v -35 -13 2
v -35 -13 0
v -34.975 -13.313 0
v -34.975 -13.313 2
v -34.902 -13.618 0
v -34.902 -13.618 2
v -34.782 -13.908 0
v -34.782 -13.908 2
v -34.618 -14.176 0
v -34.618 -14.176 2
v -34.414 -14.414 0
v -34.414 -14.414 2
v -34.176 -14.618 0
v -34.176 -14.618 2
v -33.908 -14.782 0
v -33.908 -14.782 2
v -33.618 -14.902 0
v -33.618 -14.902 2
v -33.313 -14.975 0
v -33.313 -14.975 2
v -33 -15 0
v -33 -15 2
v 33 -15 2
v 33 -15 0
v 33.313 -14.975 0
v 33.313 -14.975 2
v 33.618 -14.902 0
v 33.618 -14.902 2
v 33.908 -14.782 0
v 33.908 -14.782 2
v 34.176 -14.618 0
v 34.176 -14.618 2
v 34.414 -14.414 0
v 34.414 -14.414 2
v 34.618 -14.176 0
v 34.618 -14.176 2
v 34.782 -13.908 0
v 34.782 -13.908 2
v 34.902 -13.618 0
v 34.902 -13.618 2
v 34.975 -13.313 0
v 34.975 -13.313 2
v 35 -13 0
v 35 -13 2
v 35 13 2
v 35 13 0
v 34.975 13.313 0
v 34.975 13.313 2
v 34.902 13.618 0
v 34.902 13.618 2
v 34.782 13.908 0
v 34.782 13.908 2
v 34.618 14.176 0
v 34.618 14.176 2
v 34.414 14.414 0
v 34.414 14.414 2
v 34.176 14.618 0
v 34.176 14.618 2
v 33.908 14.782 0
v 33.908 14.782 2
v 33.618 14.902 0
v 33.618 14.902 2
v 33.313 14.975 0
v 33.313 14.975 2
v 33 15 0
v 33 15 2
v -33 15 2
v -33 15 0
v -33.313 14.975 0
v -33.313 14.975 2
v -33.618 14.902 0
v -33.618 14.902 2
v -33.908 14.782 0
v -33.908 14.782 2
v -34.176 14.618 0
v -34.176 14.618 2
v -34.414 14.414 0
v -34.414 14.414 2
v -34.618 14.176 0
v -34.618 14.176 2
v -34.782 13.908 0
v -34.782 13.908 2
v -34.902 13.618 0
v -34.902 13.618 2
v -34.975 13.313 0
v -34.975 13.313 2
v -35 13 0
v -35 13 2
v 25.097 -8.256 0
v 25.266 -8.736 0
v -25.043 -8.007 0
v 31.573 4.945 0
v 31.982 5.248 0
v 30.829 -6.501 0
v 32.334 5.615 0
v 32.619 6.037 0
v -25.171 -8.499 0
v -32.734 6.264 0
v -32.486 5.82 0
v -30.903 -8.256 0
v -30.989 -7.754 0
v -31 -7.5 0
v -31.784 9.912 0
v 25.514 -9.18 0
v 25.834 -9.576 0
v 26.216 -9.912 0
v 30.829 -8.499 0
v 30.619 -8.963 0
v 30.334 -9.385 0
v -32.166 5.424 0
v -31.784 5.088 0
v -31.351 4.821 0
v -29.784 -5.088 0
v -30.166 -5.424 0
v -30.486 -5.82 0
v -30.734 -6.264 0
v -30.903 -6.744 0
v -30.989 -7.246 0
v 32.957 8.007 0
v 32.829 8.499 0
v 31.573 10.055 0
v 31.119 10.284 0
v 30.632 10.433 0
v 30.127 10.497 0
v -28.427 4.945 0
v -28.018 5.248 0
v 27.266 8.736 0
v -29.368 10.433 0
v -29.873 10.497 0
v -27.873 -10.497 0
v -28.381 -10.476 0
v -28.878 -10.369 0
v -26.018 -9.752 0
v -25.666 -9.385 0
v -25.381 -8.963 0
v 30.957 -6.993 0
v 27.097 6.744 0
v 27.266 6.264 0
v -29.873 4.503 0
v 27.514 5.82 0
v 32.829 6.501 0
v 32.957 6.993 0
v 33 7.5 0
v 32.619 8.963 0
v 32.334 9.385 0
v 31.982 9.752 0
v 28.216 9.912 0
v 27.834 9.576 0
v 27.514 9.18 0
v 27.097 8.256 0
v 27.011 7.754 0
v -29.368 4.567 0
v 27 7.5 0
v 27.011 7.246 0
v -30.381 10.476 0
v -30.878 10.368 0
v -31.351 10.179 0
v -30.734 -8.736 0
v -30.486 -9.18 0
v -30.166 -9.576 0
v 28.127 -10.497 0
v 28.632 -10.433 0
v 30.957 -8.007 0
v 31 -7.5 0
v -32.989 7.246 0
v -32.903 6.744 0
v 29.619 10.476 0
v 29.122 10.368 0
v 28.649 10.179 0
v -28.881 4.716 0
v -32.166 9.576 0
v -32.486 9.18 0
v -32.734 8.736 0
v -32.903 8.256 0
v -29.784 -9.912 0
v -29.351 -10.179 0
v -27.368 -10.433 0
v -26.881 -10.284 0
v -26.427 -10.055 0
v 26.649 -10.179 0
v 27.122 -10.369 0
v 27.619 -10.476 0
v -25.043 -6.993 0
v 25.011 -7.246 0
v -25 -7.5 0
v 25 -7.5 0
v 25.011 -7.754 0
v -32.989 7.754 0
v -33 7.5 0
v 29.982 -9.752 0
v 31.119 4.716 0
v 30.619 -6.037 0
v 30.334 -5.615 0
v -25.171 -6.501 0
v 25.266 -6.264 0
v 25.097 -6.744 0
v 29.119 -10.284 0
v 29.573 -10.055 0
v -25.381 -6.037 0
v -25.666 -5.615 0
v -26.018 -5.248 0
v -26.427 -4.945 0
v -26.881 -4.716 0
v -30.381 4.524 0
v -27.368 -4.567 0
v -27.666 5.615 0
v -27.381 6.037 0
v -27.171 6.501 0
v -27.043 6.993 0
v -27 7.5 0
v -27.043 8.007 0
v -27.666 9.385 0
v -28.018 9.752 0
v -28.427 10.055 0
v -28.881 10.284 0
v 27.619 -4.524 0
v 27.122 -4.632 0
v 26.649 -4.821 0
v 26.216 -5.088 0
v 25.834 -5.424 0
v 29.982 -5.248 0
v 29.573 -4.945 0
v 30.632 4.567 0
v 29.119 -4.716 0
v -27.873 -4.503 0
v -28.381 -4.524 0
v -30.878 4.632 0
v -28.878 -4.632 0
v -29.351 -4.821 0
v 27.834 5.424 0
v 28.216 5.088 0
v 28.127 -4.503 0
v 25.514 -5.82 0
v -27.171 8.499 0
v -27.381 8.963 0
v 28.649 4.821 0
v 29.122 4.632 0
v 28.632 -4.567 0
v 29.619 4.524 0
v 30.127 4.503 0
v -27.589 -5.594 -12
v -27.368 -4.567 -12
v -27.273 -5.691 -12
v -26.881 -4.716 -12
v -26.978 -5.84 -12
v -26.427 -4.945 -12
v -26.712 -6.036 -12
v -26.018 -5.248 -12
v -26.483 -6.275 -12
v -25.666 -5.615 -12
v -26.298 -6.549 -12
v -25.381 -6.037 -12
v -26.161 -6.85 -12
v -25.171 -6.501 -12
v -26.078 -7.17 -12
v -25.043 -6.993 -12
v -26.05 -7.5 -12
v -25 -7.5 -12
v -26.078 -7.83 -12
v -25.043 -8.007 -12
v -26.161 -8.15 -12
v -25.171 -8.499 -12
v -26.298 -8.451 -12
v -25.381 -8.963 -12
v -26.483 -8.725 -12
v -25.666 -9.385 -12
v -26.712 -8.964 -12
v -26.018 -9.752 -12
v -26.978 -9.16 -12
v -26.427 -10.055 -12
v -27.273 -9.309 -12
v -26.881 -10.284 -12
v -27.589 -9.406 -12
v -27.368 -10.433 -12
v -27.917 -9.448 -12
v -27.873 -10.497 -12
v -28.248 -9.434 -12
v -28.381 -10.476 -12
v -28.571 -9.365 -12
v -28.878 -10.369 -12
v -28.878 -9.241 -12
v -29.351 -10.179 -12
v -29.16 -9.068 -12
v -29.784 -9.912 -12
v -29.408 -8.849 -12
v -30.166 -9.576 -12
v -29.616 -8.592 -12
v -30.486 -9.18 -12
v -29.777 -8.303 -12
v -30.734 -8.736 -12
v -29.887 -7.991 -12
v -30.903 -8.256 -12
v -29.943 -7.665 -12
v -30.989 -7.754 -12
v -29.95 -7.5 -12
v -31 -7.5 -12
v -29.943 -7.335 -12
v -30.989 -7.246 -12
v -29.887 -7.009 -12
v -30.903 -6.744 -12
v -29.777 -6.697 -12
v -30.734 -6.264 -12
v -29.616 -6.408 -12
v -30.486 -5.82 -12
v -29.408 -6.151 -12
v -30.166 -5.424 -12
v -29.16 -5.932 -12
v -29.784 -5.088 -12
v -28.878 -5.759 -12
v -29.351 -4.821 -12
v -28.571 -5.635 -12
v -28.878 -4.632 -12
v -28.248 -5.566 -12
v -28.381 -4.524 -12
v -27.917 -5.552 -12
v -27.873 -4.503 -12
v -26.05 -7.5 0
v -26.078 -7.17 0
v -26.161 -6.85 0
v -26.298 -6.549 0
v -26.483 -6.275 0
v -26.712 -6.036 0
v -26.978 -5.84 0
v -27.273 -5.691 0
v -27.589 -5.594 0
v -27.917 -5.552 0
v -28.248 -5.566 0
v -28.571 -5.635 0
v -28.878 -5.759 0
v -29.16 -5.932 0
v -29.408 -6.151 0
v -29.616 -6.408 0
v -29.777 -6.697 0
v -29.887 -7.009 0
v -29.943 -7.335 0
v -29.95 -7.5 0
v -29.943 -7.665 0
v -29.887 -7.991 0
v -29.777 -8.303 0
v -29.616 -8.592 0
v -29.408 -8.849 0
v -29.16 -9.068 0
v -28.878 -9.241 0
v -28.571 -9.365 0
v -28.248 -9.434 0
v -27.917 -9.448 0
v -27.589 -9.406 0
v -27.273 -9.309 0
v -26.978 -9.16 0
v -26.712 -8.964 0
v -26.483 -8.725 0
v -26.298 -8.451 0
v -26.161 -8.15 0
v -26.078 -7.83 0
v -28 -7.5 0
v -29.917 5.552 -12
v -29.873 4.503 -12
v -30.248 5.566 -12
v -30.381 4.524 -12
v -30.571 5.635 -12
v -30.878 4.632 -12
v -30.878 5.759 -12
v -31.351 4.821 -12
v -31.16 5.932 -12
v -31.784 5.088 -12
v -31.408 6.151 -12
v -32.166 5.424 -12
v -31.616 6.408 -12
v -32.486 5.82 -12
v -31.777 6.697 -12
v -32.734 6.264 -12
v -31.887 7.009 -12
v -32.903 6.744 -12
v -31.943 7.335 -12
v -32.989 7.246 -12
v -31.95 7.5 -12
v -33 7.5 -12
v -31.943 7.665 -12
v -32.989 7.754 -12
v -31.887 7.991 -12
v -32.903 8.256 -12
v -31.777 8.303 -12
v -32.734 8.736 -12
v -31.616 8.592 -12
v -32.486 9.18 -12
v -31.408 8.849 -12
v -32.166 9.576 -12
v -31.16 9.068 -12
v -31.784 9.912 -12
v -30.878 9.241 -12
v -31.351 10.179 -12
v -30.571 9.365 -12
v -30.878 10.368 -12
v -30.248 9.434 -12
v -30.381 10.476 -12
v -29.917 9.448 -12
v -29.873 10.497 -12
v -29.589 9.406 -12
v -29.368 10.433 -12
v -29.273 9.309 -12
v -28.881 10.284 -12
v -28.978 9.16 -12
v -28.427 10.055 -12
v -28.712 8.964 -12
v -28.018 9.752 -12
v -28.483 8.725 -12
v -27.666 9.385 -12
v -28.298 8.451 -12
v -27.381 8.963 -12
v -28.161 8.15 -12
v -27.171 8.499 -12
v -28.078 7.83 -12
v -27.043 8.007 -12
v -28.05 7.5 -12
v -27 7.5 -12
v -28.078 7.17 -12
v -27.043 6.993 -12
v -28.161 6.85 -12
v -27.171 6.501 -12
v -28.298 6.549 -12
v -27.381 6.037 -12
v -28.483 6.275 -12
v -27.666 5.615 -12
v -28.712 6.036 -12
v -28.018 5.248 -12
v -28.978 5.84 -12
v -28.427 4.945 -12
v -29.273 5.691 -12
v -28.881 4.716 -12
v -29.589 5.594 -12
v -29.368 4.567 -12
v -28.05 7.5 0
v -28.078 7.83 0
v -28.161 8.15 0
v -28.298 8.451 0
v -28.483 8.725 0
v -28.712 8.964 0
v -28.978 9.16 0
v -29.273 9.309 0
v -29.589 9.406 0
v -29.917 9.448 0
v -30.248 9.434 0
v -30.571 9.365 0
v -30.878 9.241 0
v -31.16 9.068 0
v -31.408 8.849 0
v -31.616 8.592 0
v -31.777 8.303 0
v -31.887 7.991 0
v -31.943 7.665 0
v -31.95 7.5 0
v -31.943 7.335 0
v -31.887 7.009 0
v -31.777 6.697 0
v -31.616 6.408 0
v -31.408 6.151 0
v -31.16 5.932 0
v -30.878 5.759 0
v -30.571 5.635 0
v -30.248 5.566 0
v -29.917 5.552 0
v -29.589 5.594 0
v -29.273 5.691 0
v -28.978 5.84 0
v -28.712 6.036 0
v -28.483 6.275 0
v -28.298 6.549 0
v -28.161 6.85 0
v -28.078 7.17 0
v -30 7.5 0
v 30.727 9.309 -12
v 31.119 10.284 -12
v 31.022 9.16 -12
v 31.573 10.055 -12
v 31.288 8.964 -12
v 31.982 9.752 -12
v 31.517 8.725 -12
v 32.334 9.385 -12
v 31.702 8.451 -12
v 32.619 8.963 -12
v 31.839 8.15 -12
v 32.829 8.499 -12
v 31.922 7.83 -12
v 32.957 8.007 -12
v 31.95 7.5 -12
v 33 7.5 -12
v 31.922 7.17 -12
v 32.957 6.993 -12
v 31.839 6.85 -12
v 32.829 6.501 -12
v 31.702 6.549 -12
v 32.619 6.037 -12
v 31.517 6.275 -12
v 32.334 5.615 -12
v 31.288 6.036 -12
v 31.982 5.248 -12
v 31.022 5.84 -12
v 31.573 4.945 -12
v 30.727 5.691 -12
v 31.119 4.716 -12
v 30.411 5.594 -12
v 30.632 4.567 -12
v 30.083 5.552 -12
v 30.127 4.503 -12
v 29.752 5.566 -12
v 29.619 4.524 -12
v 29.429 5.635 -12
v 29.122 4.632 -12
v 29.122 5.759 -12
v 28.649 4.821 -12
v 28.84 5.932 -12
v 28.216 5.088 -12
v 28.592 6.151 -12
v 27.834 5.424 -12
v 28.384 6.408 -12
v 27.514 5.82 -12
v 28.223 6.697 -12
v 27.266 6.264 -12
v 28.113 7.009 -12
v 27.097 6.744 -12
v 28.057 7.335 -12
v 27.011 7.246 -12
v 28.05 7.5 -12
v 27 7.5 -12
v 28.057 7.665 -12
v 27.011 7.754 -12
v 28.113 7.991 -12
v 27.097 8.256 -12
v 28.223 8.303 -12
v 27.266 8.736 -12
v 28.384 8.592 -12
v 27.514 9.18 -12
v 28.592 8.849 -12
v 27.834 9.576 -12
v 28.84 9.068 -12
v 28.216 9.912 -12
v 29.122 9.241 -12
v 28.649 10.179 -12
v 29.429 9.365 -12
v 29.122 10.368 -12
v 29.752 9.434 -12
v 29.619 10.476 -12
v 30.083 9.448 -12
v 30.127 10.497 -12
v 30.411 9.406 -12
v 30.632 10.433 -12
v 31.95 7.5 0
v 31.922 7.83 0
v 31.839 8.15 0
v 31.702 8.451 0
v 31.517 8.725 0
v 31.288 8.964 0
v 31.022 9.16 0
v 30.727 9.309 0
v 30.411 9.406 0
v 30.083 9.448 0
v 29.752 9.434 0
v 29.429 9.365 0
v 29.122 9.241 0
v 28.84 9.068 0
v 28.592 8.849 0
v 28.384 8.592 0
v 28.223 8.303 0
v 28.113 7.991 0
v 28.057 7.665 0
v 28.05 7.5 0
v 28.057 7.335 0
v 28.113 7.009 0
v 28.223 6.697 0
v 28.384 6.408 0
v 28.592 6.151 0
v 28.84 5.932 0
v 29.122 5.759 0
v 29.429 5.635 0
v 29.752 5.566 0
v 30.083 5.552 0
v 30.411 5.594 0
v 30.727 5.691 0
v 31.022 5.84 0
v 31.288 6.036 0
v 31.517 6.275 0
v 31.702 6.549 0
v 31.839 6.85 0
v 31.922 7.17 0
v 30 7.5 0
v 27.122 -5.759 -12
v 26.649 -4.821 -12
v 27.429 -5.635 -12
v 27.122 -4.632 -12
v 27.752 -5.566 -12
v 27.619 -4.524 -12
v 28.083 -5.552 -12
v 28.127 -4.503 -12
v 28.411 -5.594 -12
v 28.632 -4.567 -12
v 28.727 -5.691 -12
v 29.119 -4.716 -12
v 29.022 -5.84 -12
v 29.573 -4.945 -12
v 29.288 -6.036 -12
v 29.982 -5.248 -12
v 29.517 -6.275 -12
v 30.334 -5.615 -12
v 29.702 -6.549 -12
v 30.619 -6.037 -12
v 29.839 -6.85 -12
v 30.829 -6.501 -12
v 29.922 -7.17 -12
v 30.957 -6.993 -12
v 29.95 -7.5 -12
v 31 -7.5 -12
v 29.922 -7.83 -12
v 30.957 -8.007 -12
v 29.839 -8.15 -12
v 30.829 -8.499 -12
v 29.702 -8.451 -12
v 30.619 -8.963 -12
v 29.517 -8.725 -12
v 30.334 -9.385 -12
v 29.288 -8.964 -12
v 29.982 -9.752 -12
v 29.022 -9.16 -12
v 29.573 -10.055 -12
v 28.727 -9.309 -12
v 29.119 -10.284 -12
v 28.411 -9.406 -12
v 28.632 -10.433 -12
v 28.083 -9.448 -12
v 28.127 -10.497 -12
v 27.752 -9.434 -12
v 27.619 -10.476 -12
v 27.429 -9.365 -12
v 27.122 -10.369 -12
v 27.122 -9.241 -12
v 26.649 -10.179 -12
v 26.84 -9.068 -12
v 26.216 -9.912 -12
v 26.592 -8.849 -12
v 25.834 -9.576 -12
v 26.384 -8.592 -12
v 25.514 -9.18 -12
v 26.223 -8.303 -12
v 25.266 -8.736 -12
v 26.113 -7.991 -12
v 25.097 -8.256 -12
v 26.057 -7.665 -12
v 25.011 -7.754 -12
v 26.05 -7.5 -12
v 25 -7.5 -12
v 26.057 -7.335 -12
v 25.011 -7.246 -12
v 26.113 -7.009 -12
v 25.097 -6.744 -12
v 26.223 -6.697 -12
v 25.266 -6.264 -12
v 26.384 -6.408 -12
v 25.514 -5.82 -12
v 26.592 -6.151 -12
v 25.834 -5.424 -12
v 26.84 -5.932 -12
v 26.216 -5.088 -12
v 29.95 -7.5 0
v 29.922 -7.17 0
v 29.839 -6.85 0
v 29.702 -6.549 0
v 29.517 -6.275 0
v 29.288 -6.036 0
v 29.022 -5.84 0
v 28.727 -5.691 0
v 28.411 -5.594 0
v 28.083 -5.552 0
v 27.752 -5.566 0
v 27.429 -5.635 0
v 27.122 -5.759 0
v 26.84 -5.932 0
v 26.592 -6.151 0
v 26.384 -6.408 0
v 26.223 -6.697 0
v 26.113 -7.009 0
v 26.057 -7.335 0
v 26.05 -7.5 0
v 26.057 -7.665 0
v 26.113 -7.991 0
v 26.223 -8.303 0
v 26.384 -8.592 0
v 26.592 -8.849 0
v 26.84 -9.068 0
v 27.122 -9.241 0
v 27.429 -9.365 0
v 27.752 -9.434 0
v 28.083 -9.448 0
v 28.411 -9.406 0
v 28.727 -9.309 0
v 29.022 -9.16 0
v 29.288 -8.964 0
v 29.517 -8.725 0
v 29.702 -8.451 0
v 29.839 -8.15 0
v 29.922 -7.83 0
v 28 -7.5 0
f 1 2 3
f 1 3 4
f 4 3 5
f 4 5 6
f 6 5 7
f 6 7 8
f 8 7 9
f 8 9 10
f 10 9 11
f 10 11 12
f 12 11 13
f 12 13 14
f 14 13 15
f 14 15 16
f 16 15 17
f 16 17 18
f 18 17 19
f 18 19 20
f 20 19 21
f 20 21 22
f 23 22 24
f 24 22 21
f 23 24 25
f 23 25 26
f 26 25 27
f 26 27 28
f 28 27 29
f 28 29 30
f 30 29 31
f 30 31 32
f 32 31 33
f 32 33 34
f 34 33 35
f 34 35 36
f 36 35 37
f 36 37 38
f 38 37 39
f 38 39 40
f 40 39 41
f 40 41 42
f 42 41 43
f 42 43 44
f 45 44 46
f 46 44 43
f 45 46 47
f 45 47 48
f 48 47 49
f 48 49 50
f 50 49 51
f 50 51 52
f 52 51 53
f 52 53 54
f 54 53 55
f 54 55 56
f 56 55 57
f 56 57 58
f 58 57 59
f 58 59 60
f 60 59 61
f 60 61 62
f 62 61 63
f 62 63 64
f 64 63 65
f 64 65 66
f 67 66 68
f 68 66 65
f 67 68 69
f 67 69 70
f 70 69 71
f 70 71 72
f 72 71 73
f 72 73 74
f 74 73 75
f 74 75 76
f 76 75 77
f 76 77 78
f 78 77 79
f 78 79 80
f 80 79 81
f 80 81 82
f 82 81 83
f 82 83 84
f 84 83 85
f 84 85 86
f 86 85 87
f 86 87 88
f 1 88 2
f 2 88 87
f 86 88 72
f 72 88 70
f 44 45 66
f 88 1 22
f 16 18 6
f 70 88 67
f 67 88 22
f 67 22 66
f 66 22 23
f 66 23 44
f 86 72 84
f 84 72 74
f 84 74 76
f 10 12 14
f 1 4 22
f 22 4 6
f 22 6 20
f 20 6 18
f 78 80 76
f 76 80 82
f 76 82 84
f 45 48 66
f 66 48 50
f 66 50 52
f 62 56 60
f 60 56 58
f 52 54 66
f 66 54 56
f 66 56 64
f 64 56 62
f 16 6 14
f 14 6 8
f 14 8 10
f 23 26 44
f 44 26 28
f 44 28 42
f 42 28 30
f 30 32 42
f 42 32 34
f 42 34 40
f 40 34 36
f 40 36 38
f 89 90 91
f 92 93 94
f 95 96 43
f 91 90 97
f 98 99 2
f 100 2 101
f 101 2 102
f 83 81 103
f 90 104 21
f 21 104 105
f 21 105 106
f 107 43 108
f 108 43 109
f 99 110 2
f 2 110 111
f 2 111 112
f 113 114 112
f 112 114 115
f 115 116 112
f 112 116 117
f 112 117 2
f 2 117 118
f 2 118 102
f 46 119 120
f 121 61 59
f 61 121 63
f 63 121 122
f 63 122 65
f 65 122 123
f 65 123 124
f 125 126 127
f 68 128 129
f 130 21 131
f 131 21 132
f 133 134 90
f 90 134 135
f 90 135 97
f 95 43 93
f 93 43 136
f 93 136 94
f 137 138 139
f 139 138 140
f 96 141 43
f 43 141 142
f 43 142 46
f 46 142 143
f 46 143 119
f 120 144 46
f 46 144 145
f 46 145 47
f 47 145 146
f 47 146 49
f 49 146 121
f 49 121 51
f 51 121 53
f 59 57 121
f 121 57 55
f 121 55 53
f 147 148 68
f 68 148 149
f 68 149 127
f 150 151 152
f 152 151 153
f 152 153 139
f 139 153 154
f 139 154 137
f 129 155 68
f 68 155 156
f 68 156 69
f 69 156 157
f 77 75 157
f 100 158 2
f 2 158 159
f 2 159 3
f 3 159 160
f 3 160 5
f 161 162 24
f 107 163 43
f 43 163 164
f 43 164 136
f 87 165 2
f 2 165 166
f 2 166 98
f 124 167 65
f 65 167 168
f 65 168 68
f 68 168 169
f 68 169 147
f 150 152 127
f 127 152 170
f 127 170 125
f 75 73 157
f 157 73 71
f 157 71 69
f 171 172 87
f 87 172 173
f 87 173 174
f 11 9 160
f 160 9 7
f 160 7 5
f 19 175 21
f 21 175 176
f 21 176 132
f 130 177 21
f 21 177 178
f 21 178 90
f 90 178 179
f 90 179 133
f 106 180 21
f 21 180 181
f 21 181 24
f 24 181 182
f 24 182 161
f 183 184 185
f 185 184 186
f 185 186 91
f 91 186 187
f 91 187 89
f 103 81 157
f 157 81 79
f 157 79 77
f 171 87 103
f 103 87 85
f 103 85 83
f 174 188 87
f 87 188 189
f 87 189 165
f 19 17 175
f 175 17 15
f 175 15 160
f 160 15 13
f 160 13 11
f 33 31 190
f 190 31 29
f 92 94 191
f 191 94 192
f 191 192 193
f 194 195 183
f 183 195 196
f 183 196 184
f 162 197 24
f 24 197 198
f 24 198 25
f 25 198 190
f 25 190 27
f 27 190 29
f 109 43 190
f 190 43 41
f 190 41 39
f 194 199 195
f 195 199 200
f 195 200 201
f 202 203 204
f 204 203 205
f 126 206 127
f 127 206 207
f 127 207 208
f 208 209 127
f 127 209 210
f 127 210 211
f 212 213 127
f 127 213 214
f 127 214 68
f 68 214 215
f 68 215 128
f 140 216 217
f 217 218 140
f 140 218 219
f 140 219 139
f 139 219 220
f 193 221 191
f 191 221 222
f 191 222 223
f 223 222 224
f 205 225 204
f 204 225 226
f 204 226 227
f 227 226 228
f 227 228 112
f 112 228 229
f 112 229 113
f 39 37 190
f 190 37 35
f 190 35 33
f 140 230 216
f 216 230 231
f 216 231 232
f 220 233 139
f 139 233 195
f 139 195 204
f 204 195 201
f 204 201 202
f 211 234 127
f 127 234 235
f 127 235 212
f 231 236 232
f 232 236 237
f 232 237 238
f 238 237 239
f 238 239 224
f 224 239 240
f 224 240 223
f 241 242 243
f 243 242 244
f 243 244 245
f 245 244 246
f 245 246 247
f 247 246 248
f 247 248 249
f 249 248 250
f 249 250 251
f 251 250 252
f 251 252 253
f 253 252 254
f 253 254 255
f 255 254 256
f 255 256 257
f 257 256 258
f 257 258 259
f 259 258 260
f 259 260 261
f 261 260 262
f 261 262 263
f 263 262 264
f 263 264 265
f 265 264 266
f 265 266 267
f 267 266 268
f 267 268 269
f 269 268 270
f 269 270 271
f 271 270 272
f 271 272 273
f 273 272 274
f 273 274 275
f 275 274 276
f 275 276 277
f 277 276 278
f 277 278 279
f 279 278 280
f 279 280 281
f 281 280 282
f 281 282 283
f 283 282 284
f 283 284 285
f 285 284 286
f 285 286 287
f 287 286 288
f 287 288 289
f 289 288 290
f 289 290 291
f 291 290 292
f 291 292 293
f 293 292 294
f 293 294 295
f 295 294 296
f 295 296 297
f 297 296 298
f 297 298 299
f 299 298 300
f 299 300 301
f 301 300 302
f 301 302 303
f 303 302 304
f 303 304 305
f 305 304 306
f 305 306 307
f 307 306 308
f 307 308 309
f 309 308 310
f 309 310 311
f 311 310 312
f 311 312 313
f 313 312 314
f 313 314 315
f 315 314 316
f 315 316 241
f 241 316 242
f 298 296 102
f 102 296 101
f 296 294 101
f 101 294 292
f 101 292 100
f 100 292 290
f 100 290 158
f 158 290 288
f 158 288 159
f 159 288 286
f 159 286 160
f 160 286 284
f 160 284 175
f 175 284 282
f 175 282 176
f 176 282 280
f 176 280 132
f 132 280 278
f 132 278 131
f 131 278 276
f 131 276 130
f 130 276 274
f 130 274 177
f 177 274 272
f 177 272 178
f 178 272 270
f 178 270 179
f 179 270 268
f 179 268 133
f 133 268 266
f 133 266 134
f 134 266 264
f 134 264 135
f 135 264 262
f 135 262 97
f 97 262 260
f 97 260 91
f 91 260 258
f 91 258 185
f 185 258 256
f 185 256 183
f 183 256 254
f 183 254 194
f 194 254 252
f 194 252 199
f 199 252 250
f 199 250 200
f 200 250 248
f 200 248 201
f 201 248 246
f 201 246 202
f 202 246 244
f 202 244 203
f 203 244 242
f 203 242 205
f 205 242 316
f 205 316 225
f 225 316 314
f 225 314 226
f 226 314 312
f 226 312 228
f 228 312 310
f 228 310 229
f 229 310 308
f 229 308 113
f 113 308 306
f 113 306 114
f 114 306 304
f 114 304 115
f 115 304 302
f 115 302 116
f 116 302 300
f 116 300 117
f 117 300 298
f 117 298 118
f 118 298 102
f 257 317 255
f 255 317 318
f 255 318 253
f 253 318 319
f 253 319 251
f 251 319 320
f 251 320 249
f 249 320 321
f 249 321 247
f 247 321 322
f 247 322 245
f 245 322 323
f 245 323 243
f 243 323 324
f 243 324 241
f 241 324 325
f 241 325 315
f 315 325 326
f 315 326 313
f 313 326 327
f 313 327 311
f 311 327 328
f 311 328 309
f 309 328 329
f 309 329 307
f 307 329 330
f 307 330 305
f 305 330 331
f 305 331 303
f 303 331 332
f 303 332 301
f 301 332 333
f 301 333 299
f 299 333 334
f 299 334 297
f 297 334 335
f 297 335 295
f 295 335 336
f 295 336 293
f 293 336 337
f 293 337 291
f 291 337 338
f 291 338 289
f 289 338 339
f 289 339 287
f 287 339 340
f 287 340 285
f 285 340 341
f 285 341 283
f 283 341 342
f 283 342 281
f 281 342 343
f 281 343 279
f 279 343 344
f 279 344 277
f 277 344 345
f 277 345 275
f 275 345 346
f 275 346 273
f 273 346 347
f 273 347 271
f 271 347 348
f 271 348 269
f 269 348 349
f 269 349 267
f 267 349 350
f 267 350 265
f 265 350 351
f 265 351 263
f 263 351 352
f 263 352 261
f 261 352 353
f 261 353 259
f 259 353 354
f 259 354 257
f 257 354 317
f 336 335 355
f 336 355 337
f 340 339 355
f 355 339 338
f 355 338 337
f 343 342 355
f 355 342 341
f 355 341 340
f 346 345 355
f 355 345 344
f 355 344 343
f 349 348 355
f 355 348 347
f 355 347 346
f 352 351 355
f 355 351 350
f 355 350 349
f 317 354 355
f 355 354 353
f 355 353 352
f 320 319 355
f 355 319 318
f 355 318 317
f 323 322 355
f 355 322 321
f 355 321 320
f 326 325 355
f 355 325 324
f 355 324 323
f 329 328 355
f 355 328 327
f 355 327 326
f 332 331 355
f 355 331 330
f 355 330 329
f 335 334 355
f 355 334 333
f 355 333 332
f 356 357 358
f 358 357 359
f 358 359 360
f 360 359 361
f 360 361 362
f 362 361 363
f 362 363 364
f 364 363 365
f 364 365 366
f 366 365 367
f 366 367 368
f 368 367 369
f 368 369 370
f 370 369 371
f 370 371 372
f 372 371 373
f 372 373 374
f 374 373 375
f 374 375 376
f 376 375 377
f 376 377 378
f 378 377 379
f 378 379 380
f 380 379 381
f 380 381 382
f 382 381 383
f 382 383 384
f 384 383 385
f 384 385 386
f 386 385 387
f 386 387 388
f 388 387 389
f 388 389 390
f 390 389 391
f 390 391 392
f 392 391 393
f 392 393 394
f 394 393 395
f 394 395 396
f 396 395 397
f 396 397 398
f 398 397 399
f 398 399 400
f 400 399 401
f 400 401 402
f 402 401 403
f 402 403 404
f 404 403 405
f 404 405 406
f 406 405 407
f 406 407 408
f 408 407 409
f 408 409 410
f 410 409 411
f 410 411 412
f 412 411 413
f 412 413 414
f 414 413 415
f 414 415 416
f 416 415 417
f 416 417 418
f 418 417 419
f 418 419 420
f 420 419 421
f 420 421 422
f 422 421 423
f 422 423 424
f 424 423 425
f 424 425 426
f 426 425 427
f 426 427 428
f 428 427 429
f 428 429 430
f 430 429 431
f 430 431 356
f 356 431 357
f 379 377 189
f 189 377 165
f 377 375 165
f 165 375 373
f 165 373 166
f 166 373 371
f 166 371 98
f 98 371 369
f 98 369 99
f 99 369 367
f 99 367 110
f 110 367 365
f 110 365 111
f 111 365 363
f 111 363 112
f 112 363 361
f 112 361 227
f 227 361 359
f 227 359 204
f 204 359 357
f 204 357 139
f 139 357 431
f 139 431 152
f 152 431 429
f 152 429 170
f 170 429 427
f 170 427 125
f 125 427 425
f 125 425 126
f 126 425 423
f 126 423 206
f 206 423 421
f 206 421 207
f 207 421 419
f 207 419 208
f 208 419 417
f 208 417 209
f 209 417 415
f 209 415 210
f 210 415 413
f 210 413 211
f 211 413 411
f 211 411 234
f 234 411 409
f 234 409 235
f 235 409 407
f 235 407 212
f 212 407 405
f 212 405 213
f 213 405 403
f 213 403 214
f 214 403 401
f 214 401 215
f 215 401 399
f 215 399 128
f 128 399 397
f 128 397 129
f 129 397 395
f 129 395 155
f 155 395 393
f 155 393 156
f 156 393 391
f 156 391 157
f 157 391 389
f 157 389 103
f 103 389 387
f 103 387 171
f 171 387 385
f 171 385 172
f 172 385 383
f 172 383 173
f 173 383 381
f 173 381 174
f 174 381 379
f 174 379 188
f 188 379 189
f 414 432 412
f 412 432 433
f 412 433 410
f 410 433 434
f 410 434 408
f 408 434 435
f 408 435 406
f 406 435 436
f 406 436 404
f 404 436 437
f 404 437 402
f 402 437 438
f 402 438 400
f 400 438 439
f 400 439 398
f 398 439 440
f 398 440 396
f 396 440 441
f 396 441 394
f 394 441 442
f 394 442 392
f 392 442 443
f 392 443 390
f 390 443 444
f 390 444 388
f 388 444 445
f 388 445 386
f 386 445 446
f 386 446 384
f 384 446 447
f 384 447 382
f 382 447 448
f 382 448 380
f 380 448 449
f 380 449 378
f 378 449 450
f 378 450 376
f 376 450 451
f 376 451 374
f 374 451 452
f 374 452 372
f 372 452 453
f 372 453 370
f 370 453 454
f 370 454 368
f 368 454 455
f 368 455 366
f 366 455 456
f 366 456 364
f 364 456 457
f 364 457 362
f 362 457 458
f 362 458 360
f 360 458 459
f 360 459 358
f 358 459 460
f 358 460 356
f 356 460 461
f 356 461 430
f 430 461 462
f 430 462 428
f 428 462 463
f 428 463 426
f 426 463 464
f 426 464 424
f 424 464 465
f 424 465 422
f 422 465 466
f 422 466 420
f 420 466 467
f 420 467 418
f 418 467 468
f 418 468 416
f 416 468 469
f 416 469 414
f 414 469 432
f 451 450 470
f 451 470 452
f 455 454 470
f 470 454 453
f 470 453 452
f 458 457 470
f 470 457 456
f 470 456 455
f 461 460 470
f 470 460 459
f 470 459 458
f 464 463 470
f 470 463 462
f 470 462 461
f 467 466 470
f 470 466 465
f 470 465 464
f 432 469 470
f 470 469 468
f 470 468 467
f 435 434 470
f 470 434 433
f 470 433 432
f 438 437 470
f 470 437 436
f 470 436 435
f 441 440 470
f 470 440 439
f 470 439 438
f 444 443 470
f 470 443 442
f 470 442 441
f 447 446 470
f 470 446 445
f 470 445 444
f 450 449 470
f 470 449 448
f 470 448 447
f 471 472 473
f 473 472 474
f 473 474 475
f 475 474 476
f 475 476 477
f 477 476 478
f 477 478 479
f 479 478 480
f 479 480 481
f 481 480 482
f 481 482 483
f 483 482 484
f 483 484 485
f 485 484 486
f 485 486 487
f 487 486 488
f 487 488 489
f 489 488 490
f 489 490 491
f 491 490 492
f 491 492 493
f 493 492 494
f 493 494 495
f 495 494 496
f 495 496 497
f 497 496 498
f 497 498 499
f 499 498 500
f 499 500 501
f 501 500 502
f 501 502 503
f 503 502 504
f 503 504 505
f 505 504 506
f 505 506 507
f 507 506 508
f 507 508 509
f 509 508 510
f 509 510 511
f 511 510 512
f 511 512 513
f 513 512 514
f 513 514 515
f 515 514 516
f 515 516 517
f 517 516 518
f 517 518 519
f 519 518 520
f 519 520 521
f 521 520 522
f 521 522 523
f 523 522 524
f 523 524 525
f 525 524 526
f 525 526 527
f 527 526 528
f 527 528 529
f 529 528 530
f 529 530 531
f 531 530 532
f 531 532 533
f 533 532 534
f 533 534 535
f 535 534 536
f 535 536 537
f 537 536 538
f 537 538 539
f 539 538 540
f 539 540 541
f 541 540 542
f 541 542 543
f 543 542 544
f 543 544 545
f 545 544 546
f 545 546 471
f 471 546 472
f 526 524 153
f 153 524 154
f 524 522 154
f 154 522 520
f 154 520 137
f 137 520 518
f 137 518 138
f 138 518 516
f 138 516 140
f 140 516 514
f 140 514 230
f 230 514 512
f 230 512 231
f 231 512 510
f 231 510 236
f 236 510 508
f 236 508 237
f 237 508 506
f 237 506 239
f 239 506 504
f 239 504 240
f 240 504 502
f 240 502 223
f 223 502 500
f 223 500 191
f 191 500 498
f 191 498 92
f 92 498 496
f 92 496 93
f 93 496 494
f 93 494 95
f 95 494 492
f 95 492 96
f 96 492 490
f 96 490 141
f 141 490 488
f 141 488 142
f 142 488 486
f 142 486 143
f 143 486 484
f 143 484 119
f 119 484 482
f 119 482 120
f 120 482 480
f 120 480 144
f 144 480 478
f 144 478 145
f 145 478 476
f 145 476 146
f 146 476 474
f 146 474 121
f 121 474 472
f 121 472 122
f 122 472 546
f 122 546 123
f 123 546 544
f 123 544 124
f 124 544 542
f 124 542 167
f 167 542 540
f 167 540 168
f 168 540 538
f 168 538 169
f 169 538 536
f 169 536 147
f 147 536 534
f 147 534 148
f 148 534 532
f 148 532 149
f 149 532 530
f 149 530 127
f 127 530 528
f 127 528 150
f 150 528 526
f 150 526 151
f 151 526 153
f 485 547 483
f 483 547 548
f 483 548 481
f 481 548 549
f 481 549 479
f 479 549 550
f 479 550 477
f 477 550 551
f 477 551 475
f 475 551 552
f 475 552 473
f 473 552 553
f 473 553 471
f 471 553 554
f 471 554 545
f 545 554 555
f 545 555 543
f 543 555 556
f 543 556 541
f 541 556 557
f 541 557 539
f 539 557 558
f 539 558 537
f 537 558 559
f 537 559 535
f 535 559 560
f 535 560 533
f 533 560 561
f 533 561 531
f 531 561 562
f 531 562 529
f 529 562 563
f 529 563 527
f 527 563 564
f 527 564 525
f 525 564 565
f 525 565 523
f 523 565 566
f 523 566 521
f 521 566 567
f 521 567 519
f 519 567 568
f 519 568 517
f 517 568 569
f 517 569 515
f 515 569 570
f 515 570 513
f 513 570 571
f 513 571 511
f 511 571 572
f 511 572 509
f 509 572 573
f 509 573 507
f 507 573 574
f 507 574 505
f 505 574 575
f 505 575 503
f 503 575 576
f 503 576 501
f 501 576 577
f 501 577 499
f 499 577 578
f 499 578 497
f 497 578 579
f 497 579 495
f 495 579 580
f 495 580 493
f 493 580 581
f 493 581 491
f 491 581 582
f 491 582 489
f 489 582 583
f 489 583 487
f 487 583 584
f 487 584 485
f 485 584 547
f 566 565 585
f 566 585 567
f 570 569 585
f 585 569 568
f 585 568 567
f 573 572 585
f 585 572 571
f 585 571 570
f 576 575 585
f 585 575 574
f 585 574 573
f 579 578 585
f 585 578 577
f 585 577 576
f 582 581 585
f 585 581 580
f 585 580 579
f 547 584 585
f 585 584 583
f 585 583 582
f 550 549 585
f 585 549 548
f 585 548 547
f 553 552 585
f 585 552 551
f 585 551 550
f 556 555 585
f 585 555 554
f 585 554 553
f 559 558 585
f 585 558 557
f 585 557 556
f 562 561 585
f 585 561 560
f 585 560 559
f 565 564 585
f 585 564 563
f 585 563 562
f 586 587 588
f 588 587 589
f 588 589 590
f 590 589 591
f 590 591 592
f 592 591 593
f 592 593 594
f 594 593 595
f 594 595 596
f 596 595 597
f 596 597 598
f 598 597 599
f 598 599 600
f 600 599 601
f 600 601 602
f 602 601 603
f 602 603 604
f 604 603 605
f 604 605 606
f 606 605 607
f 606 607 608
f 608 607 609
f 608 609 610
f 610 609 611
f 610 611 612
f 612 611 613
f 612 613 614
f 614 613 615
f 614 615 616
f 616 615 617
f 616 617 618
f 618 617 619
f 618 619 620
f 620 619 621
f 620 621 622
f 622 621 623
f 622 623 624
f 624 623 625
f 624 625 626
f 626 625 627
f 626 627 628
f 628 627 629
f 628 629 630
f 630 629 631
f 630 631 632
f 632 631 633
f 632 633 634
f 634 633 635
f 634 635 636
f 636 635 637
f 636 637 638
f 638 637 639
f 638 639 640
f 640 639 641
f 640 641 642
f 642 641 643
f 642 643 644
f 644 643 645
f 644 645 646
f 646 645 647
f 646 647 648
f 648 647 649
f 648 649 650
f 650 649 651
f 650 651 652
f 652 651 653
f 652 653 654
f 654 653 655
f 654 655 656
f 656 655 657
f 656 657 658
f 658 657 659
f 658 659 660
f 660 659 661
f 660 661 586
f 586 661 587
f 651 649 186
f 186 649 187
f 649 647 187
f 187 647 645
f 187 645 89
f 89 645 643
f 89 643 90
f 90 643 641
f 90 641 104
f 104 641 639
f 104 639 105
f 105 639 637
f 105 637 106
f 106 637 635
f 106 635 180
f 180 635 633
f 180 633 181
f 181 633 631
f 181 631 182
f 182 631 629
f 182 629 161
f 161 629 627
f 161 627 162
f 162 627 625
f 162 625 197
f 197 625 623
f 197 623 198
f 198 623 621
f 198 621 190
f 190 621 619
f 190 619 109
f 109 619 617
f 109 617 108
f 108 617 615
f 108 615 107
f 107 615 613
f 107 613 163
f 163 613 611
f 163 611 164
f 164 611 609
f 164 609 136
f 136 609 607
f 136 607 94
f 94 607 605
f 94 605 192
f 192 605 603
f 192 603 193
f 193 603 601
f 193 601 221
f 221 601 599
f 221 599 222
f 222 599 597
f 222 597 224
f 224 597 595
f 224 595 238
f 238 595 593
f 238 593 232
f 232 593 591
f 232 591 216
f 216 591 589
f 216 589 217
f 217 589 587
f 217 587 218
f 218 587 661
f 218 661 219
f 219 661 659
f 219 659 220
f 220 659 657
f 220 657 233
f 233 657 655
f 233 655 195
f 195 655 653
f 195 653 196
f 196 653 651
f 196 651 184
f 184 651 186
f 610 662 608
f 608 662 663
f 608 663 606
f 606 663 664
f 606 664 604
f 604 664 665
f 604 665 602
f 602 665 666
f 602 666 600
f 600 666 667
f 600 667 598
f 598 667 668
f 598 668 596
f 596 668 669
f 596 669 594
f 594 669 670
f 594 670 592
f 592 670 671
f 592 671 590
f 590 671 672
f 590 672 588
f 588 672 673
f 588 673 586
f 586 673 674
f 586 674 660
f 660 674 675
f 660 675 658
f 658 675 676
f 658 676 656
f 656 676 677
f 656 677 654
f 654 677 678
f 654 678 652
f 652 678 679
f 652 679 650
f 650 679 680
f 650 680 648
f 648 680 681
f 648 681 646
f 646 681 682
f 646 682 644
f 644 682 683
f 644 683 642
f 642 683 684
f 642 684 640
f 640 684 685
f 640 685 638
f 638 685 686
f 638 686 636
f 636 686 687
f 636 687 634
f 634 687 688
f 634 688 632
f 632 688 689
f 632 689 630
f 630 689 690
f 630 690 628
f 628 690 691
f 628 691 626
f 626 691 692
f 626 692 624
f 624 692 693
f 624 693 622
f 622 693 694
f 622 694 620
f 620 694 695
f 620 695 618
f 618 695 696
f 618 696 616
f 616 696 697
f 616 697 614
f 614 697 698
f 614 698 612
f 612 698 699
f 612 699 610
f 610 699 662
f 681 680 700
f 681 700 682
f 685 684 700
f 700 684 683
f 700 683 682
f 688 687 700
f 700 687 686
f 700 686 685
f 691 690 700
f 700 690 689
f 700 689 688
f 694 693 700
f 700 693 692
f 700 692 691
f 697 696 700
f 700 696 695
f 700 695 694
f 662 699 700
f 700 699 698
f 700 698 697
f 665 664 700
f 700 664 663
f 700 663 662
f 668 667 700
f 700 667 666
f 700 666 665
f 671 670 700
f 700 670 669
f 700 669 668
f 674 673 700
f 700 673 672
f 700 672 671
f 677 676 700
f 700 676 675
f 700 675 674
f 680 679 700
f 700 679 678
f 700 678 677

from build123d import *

# Parameters (mm, degrees)
BOSS_EXTRUDE1_DEPTH = 2
SKETCH2_R           = 3
SKETCH2_R_2         = 1.95
BOSS_EXTRUDE2_DEPTH = 12


with BuildPart() as part:
    # Sketch1 → Boss-Extrude1 (new body)
    with BuildSketch(Plane.XY):
        with BuildLine():
            Line((-33, -15), (33, -15))
            ThreePointArc((33, -15), (34.414213562, -14.414213562), (35, -13))
            Line((35, -13), (35, 13))
            ThreePointArc((35, 13), (34.414213562, 14.414213562), (33, 15))
            Line((33, 15), (-33, 15))
            ThreePointArc((-33, 15), (-34.414213562, 14.414213562), (-35, 13))
            Line((-35, 13), (-35, -13))
            ThreePointArc((-35, -13), (-34.414213562, -14.414213562), (-33, -15))
        make_face()
    extrude(amount=BOSS_EXTRUDE1_DEPTH)

    # Sketch2 → Boss-Extrude2 (add)
    # profile 1 of 4: a face of its own
    with BuildSketch(Plane(origin=(0, 0, 0), x_dir=(-1, 0, 0), z_dir=(0, 0, -1))):
        with Locations((28, -7.5)):
            Circle(SKETCH2_R)
        with Locations((28, -7.5)):
            Circle(SKETCH2_R_2, mode=Mode.SUBTRACT)
    # profile 2 of 4: a face of its own
    with BuildSketch(Plane(origin=(0, 0, 0), x_dir=(-1, 0, 0), z_dir=(0, 0, -1))):
        with Locations((30, 7.5)):
            Circle(SKETCH2_R)
        with Locations((30, 7.5)):
            Circle(SKETCH2_R_2, mode=Mode.SUBTRACT)
    # profile 3 of 4: a face of its own
    with BuildSketch(Plane(origin=(0, 0, 0), x_dir=(-1, 0, 0), z_dir=(0, 0, -1))):
        with Locations((-30, 7.5)):
            Circle(SKETCH2_R)
        with Locations((-30, 7.5)):
            Circle(SKETCH2_R_2, mode=Mode.SUBTRACT)
    # profile 4 of 4: a face of its own
    with BuildSketch(Plane(origin=(0, 0, 0), x_dir=(-1, 0, 0), z_dir=(0, 0, -1))):
        with Locations((-28, -7.5)):
            Circle(SKETCH2_R)
        with Locations((-28, -7.5)):
            Circle(SKETCH2_R_2, mode=Mode.SUBTRACT)
    extrude(amount=BOSS_EXTRUDE2_DEPTH)


solid = part.part
